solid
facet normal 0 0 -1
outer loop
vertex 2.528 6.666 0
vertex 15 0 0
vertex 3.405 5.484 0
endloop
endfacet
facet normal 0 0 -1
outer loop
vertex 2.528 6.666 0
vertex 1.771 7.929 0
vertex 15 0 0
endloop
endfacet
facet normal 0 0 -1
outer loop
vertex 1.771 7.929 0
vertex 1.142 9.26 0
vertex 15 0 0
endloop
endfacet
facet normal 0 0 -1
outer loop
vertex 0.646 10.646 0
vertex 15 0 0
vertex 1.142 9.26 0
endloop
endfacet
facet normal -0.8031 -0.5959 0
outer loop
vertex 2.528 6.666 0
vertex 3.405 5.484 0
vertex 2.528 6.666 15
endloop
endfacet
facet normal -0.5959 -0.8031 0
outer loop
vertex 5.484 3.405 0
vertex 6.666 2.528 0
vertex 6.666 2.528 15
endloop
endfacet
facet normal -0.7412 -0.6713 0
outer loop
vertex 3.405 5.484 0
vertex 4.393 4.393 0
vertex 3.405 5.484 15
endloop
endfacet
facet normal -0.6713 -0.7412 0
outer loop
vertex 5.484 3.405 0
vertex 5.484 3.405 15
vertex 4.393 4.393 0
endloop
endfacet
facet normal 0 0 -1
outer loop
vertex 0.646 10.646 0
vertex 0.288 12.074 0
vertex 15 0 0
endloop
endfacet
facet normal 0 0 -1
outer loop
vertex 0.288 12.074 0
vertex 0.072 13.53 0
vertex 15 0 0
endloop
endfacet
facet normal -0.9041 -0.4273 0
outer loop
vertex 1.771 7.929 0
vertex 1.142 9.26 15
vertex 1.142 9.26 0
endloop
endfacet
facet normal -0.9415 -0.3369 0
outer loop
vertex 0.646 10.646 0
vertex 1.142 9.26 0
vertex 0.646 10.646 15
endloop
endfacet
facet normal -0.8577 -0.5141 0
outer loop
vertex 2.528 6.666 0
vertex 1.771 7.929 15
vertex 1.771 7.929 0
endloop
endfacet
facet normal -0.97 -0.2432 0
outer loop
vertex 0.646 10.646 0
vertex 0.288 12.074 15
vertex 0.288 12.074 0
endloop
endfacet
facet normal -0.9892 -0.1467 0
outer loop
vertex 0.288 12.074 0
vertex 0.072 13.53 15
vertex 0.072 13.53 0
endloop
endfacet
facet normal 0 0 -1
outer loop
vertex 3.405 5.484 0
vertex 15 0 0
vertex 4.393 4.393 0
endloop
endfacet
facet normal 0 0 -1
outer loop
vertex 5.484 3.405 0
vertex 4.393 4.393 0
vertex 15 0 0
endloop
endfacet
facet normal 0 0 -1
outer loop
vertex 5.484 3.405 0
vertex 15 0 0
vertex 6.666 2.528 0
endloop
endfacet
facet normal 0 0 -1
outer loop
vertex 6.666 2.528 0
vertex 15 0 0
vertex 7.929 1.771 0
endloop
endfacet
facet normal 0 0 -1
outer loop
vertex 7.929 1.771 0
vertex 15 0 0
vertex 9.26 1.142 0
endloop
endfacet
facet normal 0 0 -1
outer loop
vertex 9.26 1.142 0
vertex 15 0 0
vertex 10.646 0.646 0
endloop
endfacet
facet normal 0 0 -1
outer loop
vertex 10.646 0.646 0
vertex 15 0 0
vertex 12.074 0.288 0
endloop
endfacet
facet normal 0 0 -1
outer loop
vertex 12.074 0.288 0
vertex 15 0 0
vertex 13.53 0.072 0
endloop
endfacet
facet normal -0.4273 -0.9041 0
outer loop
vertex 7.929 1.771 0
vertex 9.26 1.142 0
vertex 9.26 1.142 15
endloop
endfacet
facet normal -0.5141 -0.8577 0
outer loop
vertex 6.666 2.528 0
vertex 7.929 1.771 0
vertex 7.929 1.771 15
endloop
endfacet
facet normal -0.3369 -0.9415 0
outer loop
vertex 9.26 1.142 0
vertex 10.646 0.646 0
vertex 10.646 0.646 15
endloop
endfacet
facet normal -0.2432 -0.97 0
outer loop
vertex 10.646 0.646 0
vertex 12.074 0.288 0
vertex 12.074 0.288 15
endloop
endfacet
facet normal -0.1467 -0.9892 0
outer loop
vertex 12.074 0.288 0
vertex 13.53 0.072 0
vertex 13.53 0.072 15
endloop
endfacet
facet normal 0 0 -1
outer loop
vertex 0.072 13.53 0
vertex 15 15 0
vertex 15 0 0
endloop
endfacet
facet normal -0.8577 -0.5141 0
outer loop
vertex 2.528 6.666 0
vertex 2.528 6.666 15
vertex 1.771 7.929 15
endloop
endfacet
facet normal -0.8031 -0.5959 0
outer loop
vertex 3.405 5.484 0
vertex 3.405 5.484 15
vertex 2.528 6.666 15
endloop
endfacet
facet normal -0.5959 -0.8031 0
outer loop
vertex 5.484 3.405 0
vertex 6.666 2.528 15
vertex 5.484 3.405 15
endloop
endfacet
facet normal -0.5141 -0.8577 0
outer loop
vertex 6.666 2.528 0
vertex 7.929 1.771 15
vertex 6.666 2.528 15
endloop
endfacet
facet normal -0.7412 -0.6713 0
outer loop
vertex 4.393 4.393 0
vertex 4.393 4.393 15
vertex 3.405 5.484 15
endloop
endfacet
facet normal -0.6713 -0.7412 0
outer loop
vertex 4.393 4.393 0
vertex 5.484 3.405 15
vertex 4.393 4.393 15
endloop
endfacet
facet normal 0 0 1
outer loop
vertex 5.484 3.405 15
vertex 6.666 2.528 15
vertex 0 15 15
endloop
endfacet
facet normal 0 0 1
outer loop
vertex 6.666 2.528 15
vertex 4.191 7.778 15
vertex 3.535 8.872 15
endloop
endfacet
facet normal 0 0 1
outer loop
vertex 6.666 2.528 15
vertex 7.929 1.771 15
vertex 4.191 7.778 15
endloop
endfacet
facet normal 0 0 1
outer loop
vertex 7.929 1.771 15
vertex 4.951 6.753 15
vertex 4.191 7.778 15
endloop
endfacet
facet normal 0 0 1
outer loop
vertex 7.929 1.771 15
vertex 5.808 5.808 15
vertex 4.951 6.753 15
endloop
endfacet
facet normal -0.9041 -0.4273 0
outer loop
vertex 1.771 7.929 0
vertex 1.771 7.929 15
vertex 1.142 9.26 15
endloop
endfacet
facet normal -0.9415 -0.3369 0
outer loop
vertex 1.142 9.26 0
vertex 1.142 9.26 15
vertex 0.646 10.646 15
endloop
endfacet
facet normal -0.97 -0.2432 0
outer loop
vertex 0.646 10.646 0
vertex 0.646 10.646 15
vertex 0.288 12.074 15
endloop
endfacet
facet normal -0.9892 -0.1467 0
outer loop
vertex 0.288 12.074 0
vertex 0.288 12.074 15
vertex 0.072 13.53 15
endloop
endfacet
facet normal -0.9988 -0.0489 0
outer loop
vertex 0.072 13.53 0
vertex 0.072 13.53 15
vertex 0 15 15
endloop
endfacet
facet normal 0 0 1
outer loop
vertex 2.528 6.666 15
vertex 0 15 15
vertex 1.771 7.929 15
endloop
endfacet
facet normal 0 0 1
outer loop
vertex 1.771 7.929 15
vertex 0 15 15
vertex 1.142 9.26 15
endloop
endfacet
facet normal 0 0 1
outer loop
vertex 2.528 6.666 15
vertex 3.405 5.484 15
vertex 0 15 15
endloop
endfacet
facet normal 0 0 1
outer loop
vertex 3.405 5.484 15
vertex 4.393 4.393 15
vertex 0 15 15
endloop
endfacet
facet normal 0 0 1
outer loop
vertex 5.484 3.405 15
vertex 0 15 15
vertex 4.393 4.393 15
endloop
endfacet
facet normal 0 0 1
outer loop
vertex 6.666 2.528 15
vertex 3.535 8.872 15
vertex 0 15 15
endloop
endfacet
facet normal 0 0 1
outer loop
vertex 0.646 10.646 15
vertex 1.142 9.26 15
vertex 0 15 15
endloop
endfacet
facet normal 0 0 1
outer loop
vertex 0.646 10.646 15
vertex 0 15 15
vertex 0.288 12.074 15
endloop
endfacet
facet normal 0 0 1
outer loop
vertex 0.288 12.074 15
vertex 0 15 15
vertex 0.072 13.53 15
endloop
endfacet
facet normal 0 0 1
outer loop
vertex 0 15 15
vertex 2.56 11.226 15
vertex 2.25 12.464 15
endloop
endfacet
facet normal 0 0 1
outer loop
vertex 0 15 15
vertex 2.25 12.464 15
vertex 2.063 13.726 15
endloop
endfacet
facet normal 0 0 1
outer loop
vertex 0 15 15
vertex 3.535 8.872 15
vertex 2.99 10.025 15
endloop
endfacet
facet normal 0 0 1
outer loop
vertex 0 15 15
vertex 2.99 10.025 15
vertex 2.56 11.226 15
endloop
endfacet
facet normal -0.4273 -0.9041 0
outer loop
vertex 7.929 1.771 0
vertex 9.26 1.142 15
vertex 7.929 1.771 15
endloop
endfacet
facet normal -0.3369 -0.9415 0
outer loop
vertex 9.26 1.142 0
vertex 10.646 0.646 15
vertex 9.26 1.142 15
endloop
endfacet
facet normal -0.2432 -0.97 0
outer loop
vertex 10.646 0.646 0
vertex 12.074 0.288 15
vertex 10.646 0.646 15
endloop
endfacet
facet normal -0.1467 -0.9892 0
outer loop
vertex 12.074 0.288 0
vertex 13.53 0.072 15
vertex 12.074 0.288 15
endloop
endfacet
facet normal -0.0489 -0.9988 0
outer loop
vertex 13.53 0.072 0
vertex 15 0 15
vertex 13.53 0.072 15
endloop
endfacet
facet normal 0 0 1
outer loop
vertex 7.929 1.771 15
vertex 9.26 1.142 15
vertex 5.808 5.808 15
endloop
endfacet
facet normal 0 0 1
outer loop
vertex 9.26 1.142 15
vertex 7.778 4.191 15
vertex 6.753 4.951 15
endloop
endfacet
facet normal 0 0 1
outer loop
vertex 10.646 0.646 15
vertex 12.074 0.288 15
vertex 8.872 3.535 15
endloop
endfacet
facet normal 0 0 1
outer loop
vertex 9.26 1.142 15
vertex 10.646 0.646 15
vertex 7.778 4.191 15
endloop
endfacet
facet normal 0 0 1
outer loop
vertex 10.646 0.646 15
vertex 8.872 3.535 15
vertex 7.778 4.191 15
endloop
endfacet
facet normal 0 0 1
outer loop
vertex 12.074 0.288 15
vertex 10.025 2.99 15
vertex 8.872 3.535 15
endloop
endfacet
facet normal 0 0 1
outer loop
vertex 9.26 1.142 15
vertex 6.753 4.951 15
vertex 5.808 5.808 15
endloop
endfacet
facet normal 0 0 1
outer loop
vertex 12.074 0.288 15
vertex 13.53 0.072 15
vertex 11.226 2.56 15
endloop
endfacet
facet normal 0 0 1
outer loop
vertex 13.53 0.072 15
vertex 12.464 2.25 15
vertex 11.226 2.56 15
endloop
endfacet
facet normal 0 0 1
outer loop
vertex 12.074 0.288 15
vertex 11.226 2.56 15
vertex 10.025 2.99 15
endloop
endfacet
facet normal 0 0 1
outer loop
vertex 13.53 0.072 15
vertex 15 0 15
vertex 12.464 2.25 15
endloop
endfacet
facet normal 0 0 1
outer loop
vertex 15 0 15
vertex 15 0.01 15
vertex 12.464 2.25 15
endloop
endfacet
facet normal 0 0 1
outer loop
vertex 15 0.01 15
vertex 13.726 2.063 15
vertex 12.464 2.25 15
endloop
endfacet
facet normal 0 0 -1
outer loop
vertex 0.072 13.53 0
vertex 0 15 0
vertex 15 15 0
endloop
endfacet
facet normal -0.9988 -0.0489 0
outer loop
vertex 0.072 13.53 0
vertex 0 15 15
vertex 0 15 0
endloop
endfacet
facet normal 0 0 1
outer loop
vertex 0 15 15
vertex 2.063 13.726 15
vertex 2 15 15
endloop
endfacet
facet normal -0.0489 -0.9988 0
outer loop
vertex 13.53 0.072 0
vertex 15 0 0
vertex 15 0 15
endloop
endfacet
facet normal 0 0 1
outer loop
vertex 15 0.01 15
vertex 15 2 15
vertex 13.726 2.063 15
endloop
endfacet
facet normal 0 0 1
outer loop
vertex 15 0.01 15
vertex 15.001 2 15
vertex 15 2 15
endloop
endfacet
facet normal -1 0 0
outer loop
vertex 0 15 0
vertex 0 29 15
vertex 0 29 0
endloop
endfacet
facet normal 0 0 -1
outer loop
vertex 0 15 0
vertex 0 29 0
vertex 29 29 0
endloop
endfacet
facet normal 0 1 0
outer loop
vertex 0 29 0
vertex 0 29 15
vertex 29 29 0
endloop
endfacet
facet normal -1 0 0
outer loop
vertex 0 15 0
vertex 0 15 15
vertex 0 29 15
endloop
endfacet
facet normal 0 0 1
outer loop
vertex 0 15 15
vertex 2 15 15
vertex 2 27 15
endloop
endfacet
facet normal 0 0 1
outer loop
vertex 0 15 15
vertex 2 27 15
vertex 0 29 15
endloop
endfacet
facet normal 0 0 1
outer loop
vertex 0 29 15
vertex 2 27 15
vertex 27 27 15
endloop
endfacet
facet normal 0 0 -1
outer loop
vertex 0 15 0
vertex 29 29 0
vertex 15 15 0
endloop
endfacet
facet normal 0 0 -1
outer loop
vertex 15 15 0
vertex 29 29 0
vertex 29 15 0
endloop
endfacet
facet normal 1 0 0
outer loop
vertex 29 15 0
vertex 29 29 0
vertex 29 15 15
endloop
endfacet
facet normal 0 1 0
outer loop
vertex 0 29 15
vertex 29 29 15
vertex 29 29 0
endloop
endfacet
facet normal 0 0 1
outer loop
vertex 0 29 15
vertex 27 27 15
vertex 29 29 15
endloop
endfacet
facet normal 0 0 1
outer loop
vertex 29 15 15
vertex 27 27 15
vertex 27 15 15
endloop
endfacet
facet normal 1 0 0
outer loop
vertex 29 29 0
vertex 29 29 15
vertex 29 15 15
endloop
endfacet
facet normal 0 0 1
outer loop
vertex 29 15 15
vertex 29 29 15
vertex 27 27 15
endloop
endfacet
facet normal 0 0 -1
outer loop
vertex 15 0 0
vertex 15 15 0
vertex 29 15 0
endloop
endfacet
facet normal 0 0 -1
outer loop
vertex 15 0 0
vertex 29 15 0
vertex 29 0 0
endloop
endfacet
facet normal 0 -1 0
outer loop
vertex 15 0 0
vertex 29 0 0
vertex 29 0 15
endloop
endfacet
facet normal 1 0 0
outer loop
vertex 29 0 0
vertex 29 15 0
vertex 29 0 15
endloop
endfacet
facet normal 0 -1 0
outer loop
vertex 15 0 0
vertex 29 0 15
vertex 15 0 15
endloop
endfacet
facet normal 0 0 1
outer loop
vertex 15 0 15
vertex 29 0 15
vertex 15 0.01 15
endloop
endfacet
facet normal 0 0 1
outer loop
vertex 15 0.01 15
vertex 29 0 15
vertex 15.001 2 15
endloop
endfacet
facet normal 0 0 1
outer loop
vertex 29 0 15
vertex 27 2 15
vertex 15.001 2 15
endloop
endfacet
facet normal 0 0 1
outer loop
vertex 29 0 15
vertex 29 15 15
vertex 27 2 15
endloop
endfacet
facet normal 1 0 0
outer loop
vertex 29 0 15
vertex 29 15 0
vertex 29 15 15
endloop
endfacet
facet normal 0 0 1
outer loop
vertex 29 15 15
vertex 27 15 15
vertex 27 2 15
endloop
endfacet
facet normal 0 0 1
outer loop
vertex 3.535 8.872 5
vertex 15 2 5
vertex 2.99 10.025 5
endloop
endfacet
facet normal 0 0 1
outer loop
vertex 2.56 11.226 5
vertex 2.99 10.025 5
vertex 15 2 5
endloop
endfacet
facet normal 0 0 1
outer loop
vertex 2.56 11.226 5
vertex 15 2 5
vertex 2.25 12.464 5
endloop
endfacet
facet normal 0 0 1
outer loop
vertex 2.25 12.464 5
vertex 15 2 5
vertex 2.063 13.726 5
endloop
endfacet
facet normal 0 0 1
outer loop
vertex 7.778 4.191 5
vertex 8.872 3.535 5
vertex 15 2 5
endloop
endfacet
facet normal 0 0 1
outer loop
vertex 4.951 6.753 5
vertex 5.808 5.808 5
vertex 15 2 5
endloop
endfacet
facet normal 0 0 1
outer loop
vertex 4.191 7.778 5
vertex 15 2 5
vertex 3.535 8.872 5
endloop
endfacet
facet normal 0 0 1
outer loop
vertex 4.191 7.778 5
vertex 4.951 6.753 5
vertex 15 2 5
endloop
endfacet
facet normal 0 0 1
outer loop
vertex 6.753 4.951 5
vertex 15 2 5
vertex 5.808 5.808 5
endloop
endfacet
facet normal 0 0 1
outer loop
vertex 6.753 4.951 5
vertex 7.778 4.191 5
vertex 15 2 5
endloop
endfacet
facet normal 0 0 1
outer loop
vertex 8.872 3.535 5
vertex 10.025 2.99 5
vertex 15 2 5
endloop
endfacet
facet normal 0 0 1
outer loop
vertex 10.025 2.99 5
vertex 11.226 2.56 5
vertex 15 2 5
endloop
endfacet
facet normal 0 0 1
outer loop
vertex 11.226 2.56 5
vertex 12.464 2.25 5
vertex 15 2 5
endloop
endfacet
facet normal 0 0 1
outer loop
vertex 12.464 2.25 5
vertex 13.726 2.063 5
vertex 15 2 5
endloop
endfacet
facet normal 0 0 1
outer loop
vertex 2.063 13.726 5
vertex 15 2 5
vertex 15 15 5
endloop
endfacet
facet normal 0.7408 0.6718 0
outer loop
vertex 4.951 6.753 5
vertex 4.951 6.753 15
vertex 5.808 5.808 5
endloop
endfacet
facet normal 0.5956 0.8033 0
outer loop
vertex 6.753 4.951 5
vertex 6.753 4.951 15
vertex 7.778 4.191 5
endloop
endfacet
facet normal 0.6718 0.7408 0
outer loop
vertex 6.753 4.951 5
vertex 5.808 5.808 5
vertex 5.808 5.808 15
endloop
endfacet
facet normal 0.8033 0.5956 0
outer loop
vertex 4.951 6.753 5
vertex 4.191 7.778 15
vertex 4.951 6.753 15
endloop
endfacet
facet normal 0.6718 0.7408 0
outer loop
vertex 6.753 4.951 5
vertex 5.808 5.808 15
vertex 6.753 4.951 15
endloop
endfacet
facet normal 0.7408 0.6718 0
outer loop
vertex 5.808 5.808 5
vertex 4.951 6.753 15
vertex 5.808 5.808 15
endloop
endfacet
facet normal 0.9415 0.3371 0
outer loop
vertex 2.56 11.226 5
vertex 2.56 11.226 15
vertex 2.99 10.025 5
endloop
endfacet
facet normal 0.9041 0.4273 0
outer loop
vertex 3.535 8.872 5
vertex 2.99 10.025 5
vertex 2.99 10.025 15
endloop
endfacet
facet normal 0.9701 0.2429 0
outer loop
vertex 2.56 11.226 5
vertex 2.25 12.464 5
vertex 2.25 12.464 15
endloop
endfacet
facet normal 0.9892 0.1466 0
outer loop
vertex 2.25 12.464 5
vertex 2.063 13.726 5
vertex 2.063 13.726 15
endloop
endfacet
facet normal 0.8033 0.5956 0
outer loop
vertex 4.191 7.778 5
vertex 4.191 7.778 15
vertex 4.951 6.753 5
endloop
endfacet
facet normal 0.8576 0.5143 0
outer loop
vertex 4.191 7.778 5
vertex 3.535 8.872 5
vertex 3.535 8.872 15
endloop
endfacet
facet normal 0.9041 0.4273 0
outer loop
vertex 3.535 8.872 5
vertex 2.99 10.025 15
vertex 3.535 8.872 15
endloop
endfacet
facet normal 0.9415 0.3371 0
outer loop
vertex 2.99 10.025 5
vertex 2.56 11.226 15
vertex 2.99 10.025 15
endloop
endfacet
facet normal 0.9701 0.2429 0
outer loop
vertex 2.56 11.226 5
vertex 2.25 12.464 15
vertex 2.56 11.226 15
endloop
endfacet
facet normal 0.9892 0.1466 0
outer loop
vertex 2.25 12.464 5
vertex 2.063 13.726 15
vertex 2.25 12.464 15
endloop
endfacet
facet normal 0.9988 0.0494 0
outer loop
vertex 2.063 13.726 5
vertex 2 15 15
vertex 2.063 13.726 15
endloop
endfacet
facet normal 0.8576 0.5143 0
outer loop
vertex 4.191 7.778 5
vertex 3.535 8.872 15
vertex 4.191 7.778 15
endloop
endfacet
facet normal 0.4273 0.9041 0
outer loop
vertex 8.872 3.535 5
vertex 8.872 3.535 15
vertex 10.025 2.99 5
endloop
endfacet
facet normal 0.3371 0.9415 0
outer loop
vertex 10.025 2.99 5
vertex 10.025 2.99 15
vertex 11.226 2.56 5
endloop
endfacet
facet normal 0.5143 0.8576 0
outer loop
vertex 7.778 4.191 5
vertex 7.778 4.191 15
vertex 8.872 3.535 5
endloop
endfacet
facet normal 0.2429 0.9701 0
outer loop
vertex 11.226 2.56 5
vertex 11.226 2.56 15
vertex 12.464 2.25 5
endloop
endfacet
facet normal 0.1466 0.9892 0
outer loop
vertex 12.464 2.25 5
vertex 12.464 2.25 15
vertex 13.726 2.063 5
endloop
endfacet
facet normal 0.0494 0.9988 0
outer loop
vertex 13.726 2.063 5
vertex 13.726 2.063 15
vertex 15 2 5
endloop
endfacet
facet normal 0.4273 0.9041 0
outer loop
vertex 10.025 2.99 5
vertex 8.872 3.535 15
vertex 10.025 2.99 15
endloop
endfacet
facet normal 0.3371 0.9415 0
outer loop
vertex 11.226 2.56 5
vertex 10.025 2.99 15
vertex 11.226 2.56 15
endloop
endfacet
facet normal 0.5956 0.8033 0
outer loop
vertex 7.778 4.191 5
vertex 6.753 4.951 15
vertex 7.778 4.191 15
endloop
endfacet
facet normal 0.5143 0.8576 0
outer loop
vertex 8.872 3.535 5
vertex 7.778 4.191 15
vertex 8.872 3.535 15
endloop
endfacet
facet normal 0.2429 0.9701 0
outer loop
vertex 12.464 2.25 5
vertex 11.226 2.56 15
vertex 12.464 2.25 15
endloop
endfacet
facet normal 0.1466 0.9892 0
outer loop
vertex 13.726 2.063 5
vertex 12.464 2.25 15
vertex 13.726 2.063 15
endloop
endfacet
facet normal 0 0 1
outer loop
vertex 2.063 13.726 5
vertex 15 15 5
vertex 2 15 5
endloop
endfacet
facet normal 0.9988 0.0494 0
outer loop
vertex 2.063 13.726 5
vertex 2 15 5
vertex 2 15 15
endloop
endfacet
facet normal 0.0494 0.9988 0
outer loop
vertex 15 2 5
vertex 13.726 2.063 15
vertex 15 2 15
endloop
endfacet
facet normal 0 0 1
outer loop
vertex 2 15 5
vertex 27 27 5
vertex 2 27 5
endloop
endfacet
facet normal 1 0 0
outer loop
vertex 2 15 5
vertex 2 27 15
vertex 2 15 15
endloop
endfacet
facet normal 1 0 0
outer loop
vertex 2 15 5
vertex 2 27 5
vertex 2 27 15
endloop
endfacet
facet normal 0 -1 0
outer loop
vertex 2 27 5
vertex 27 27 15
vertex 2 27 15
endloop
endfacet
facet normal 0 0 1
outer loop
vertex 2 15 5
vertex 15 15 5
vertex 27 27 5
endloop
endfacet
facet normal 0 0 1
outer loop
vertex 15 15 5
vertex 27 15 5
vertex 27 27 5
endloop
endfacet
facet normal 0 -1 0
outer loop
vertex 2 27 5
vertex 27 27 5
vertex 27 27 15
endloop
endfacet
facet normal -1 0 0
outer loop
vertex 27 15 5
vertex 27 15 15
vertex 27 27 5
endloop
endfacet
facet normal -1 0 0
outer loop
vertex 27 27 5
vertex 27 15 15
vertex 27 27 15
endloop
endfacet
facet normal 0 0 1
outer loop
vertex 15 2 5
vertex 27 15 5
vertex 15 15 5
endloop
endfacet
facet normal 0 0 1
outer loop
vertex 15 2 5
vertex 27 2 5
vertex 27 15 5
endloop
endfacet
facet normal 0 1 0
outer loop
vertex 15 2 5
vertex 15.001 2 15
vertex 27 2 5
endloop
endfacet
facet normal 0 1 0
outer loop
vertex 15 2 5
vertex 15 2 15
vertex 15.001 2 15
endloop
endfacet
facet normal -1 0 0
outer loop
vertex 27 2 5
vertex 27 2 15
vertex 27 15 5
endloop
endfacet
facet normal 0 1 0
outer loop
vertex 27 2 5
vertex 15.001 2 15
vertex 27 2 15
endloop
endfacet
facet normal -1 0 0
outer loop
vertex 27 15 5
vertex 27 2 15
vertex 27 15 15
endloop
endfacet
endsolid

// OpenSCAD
wall = 2;
bottom = 5;
inner = 25;
height = 15;
r = 15;

outer = inner + 2 * wall;
e = 0.01;

difference() {
    // Außenform: eine Ecke (bei Ursprung) gerundet
    union() {
        translate([0, r, 0]) cube([outer, outer - r, height]);
        translate([r, 0, 0]) cube([outer - r, r, height]);
        // Viertelzylinder auf x=0..r, y=0..r begrenzt → keine Beulen an den geraden Wänden
        intersection() {
            translate([r, r, 0]) cylinder(r=r, h=height, $fn=64);
            cube([r + e, r + e, height]);
        }
    }
    // Innenraum: gleiche Ecke gerundet mit r-wall → konstante Wandstärke
    union() {
        translate([wall, r, bottom]) cube([inner, outer - wall - r, height - bottom + e]);
        translate([r, wall, bottom]) cube([outer - wall - r, r - wall, height - bottom + e]);
        // Viertelzylinder auf x=0..r, y=0..r begrenzt
        intersection() {
            translate([r, r, bottom]) cylinder(r=r - wall, h=height - bottom + e, $fn=64);
            translate([0, 0, bottom]) cube([r + e, r + e, height - bottom + e]);
        }
    }
}
